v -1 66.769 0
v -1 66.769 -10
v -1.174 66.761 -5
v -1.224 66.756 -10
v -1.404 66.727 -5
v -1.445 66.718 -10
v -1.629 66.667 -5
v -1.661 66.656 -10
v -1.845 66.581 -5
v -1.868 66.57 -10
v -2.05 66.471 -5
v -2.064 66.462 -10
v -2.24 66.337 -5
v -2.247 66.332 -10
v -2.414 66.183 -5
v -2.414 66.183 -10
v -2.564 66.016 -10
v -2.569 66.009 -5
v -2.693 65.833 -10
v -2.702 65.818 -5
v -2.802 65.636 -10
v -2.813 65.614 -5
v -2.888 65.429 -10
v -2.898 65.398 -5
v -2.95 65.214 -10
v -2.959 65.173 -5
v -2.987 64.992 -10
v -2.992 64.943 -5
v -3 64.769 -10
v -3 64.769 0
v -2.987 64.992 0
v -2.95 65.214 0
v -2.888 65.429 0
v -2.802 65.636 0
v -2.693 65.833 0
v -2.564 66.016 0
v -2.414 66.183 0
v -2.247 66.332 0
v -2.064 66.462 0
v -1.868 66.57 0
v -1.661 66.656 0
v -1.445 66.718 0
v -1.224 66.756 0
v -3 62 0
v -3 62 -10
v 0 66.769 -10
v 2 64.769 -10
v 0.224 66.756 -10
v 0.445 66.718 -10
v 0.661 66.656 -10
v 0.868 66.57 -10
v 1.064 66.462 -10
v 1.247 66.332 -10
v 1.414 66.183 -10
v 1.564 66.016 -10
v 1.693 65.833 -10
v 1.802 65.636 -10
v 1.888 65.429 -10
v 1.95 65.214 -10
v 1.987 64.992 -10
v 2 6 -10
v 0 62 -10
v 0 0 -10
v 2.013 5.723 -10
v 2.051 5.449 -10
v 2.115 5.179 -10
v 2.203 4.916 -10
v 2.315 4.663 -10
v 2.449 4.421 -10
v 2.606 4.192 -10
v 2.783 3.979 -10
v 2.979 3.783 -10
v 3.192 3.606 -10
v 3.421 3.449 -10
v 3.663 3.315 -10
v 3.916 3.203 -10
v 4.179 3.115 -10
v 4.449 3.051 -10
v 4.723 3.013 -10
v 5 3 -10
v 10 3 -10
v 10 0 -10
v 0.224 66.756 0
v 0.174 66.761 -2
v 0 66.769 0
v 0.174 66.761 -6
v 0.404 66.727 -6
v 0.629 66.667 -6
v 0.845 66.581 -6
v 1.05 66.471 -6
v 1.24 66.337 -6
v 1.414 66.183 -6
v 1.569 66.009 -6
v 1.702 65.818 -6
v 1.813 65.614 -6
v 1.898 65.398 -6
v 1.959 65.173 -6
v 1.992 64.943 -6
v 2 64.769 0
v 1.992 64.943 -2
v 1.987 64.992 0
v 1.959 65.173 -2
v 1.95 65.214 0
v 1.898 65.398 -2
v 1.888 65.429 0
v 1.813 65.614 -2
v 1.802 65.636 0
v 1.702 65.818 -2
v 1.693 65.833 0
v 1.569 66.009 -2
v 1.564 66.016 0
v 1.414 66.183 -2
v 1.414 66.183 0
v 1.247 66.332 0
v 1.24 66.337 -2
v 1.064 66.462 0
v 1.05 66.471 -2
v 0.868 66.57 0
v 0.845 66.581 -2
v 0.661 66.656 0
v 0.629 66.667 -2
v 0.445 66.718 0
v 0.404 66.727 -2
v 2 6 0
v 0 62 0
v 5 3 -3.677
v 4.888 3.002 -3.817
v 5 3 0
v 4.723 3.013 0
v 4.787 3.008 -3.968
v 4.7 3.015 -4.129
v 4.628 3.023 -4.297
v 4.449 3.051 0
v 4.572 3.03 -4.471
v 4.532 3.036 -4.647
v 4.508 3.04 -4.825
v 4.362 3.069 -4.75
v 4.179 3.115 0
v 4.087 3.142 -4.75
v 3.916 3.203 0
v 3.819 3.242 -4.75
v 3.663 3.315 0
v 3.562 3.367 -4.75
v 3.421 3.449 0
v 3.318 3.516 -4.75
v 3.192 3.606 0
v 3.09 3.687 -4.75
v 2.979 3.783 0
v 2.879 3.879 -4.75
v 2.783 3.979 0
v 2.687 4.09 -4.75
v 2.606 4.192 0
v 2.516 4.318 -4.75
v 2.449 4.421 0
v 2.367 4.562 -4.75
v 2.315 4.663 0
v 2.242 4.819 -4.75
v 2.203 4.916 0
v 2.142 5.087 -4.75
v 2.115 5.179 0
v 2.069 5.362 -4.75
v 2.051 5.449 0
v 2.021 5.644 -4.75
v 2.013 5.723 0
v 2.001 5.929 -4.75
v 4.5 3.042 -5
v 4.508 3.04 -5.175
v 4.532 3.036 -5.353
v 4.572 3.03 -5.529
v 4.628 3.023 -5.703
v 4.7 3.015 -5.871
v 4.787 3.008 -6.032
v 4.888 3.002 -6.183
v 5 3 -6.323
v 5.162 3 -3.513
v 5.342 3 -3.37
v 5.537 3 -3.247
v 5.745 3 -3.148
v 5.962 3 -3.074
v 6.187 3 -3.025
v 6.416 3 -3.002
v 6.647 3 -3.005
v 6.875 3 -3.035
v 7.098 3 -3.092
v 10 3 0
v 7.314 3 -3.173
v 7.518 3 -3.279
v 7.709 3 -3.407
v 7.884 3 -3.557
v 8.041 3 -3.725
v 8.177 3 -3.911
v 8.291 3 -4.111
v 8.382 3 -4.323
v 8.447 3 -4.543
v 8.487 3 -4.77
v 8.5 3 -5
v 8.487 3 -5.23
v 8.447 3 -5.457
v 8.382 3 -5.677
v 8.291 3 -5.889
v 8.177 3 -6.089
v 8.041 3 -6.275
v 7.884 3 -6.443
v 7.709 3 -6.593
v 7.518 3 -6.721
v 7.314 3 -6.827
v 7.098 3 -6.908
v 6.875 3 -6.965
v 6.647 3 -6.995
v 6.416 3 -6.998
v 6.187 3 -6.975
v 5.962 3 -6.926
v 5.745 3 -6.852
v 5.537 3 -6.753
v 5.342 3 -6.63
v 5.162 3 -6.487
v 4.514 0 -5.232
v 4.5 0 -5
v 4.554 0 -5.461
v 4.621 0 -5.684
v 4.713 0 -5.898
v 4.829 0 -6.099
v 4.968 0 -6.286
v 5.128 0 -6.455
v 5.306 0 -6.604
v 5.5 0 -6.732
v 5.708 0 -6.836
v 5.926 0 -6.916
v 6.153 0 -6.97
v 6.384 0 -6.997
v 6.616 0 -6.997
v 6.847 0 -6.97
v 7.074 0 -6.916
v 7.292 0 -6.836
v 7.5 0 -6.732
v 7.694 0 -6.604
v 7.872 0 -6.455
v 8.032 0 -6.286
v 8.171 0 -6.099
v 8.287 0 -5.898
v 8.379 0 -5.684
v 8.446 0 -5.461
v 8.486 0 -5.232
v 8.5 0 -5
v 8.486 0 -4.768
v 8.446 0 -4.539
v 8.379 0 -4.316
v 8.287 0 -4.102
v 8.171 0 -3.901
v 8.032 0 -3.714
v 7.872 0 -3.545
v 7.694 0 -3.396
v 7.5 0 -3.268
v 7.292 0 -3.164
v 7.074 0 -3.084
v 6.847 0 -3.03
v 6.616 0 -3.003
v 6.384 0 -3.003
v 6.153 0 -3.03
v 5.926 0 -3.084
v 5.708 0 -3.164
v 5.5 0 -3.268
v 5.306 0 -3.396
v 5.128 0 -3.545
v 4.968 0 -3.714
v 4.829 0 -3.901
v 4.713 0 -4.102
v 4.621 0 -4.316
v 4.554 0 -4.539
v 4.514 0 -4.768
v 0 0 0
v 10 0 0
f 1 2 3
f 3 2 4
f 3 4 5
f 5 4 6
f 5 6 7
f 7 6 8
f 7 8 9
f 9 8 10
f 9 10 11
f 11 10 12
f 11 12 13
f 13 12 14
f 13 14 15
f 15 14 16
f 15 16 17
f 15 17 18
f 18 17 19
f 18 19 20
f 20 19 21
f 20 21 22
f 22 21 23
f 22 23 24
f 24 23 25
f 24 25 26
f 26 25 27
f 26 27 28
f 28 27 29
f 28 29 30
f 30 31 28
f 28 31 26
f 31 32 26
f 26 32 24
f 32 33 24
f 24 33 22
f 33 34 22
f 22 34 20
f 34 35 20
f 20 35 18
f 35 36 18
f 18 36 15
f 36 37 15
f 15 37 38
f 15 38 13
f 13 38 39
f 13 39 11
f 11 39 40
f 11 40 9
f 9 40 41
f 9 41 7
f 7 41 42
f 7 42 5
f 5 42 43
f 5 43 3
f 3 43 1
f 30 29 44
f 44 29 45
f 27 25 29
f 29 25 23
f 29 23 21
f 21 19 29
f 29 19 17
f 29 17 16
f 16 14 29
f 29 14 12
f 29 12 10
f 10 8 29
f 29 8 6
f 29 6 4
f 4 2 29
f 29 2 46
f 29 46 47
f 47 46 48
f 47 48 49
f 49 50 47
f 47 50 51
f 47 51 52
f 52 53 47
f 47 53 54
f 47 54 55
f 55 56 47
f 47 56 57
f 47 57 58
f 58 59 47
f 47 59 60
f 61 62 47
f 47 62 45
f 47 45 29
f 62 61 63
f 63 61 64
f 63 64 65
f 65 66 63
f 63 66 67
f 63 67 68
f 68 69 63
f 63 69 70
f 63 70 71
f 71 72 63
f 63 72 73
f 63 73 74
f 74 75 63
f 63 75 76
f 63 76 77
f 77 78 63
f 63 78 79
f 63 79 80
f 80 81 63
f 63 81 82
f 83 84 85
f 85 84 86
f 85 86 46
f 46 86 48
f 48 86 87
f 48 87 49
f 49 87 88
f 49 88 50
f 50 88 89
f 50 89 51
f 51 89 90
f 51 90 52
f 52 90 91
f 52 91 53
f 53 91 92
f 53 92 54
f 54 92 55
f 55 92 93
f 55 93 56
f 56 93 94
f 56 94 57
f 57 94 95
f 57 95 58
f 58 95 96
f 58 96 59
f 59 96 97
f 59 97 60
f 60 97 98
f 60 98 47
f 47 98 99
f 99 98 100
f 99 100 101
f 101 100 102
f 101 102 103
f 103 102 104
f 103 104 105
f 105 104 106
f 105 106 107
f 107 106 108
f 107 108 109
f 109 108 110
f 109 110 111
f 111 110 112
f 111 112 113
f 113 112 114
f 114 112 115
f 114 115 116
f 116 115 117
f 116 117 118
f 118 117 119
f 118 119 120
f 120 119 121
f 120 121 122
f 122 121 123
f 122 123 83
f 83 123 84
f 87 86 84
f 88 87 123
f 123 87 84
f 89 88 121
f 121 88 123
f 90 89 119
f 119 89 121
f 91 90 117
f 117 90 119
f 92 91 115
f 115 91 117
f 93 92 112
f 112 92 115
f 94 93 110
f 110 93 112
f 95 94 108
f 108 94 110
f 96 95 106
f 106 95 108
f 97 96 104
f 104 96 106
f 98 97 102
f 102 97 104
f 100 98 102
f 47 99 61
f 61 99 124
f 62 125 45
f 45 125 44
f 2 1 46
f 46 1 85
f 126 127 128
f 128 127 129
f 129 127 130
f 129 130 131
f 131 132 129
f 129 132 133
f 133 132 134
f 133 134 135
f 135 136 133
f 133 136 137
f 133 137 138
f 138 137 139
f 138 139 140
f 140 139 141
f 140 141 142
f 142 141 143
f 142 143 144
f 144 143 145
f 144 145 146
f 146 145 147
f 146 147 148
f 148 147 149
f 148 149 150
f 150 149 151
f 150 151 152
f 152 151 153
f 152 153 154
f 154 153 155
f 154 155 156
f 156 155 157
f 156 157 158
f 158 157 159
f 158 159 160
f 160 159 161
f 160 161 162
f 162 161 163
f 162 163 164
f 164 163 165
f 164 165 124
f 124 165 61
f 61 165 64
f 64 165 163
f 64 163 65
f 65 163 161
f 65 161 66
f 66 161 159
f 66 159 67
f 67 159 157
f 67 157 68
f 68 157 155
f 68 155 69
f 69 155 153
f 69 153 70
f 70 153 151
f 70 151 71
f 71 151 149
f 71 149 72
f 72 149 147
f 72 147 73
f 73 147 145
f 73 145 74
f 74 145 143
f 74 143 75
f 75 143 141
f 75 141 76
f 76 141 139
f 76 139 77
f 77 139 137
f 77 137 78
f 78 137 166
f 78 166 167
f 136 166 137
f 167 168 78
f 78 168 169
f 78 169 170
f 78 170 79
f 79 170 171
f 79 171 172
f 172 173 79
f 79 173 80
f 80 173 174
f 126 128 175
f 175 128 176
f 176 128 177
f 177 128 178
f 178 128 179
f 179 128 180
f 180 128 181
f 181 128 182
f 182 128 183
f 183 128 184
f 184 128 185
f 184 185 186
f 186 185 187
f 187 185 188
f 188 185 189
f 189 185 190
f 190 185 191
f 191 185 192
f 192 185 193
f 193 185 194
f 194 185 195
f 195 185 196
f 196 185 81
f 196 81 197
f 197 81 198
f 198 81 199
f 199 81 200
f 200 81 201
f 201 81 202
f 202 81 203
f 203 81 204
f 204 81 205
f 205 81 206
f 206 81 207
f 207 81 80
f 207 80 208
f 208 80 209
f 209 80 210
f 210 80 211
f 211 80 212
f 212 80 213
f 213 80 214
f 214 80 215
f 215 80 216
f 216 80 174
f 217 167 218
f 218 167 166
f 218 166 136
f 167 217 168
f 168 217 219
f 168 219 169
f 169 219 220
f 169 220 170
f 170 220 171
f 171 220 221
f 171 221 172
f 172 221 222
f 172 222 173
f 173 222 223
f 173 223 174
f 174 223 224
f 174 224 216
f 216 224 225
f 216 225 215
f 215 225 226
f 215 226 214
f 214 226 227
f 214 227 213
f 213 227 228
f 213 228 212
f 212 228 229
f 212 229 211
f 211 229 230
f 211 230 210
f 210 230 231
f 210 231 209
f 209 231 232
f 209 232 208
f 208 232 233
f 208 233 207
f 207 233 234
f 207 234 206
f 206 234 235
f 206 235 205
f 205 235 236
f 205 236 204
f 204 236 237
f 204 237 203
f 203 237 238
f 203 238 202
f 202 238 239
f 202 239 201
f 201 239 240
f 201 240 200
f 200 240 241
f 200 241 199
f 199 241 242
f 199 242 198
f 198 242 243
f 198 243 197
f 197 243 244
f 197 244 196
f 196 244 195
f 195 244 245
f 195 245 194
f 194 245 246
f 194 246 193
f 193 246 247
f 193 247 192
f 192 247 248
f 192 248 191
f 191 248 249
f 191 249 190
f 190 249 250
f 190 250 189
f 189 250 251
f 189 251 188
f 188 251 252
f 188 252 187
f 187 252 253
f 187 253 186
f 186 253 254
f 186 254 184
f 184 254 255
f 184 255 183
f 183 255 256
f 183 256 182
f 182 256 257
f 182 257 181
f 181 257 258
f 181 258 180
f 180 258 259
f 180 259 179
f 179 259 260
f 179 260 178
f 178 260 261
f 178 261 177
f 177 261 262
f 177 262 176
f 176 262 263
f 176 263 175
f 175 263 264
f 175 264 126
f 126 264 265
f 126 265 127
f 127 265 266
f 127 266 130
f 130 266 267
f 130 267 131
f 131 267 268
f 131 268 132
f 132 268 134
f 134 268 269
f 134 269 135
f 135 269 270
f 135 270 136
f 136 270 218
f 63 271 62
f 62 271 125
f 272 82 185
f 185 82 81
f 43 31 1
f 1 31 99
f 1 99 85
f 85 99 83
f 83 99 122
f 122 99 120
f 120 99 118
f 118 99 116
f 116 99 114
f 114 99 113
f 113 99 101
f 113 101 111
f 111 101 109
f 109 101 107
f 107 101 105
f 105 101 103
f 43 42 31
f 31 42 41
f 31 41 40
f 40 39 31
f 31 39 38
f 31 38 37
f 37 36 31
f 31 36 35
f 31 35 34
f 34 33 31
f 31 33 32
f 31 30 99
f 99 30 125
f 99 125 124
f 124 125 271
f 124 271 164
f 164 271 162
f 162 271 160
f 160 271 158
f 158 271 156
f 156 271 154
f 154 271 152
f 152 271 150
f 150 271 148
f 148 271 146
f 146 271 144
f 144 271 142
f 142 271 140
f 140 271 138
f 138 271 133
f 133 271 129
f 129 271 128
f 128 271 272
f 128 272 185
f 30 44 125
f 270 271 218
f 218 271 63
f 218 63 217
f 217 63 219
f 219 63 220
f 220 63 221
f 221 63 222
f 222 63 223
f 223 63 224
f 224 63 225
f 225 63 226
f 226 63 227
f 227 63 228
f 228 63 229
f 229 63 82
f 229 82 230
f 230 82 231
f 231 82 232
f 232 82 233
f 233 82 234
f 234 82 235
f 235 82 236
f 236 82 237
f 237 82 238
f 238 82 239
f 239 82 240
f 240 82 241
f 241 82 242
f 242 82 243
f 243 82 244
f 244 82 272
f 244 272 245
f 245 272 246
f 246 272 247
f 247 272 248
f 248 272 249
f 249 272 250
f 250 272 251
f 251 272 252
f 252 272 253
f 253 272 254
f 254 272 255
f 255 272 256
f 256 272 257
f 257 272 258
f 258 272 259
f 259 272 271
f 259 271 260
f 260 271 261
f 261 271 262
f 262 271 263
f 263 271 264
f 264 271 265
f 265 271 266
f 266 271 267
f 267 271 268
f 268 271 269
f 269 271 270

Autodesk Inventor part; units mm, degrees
ref_plane "YZ Plane" through (0, 0, 0) normal (1, 0, 0) x (0, 1, 0)
ref_plane "XZ Plane" through (0, 0, 0) normal (0, 1, 0) x (-1, 0, 0)
ref_plane "XY Plane" through (0, 0, 0) normal (0, 0, 1) x (1, 0, 0)
sketch "Sketch1" plane through (0, 0, 0) normal (0, 1, 0) x (-1, 0, 0)
  line L0 (0, 0) -> (-10, 0)
  line L1 (-10, 0) -> (-10, -10)
  line L2 (-10, -10) -> (0, -10)
  line L3 (0, -10) -> (0, 0)
  line L4 (0, 0) -> (-2, 0)
  line L5 (-2, 0) -> (-2, -10)
  dimension "d0" = 10
  dimension "d1" = 10
  dimension "d2" = 2
extrude "Extrusion1" add sketch "Sketch1" along normal blind 3 contours L5 L2 L1 L0
extrude "Extrusion2" add sketch "Sketch1" along normal blind 62 contours L3 L2 L5 L0
sketch "Sketch2" plane through (0, 3, 0) normal (0, 1, 0) x (1, 0, 0)
  line L0 (9.919, 10.0415) -> (10, 5)
  line L1 (10, 0) -> (10, 10) projected
  line L2 (10, 5) -> (6.5, 5)
  line L3 (2, 0) -> (2, 10) projected
  circle A0 centre (6.5, 5) radius 2
  point P0 (0, 0)
  dimension "d7" = 3.5
  dimension "d8" = 4
extrude "Extrusion3" cut sketch "Sketch2" against normal blind 62
fillet "Fillet1" radius 3 1 edges at (2, 3, -5)
sketch "Sketch3" plane through (0, 0, -10) normal (-1, 0, 0) x (0, 0, 1)
  line L0 (0, 0) -> (0, 62) projected
  line L1 (0, 62) -> (0, 66.7685)
  line L2 (0, 66.7685) -> (10, 66.7685)
  line L3 (10, 66.7685) -> (10, 62)
  line L4 (10, 62) -> (0, 62) projected
  line L5 (10, 62) -> (0, 62)
  point P0 (10, 0)
extrude "Extrusion4" add sketch "Sketch3" along normal blind 3 and the other way blind 2
fillet "Fillet2" radius 2 2 edges at (2, 66.7685, -5) (-3, 66.7685, -5)
properties part number "vacuum_bin_holder" material "Aluminum, Anodized Red"
